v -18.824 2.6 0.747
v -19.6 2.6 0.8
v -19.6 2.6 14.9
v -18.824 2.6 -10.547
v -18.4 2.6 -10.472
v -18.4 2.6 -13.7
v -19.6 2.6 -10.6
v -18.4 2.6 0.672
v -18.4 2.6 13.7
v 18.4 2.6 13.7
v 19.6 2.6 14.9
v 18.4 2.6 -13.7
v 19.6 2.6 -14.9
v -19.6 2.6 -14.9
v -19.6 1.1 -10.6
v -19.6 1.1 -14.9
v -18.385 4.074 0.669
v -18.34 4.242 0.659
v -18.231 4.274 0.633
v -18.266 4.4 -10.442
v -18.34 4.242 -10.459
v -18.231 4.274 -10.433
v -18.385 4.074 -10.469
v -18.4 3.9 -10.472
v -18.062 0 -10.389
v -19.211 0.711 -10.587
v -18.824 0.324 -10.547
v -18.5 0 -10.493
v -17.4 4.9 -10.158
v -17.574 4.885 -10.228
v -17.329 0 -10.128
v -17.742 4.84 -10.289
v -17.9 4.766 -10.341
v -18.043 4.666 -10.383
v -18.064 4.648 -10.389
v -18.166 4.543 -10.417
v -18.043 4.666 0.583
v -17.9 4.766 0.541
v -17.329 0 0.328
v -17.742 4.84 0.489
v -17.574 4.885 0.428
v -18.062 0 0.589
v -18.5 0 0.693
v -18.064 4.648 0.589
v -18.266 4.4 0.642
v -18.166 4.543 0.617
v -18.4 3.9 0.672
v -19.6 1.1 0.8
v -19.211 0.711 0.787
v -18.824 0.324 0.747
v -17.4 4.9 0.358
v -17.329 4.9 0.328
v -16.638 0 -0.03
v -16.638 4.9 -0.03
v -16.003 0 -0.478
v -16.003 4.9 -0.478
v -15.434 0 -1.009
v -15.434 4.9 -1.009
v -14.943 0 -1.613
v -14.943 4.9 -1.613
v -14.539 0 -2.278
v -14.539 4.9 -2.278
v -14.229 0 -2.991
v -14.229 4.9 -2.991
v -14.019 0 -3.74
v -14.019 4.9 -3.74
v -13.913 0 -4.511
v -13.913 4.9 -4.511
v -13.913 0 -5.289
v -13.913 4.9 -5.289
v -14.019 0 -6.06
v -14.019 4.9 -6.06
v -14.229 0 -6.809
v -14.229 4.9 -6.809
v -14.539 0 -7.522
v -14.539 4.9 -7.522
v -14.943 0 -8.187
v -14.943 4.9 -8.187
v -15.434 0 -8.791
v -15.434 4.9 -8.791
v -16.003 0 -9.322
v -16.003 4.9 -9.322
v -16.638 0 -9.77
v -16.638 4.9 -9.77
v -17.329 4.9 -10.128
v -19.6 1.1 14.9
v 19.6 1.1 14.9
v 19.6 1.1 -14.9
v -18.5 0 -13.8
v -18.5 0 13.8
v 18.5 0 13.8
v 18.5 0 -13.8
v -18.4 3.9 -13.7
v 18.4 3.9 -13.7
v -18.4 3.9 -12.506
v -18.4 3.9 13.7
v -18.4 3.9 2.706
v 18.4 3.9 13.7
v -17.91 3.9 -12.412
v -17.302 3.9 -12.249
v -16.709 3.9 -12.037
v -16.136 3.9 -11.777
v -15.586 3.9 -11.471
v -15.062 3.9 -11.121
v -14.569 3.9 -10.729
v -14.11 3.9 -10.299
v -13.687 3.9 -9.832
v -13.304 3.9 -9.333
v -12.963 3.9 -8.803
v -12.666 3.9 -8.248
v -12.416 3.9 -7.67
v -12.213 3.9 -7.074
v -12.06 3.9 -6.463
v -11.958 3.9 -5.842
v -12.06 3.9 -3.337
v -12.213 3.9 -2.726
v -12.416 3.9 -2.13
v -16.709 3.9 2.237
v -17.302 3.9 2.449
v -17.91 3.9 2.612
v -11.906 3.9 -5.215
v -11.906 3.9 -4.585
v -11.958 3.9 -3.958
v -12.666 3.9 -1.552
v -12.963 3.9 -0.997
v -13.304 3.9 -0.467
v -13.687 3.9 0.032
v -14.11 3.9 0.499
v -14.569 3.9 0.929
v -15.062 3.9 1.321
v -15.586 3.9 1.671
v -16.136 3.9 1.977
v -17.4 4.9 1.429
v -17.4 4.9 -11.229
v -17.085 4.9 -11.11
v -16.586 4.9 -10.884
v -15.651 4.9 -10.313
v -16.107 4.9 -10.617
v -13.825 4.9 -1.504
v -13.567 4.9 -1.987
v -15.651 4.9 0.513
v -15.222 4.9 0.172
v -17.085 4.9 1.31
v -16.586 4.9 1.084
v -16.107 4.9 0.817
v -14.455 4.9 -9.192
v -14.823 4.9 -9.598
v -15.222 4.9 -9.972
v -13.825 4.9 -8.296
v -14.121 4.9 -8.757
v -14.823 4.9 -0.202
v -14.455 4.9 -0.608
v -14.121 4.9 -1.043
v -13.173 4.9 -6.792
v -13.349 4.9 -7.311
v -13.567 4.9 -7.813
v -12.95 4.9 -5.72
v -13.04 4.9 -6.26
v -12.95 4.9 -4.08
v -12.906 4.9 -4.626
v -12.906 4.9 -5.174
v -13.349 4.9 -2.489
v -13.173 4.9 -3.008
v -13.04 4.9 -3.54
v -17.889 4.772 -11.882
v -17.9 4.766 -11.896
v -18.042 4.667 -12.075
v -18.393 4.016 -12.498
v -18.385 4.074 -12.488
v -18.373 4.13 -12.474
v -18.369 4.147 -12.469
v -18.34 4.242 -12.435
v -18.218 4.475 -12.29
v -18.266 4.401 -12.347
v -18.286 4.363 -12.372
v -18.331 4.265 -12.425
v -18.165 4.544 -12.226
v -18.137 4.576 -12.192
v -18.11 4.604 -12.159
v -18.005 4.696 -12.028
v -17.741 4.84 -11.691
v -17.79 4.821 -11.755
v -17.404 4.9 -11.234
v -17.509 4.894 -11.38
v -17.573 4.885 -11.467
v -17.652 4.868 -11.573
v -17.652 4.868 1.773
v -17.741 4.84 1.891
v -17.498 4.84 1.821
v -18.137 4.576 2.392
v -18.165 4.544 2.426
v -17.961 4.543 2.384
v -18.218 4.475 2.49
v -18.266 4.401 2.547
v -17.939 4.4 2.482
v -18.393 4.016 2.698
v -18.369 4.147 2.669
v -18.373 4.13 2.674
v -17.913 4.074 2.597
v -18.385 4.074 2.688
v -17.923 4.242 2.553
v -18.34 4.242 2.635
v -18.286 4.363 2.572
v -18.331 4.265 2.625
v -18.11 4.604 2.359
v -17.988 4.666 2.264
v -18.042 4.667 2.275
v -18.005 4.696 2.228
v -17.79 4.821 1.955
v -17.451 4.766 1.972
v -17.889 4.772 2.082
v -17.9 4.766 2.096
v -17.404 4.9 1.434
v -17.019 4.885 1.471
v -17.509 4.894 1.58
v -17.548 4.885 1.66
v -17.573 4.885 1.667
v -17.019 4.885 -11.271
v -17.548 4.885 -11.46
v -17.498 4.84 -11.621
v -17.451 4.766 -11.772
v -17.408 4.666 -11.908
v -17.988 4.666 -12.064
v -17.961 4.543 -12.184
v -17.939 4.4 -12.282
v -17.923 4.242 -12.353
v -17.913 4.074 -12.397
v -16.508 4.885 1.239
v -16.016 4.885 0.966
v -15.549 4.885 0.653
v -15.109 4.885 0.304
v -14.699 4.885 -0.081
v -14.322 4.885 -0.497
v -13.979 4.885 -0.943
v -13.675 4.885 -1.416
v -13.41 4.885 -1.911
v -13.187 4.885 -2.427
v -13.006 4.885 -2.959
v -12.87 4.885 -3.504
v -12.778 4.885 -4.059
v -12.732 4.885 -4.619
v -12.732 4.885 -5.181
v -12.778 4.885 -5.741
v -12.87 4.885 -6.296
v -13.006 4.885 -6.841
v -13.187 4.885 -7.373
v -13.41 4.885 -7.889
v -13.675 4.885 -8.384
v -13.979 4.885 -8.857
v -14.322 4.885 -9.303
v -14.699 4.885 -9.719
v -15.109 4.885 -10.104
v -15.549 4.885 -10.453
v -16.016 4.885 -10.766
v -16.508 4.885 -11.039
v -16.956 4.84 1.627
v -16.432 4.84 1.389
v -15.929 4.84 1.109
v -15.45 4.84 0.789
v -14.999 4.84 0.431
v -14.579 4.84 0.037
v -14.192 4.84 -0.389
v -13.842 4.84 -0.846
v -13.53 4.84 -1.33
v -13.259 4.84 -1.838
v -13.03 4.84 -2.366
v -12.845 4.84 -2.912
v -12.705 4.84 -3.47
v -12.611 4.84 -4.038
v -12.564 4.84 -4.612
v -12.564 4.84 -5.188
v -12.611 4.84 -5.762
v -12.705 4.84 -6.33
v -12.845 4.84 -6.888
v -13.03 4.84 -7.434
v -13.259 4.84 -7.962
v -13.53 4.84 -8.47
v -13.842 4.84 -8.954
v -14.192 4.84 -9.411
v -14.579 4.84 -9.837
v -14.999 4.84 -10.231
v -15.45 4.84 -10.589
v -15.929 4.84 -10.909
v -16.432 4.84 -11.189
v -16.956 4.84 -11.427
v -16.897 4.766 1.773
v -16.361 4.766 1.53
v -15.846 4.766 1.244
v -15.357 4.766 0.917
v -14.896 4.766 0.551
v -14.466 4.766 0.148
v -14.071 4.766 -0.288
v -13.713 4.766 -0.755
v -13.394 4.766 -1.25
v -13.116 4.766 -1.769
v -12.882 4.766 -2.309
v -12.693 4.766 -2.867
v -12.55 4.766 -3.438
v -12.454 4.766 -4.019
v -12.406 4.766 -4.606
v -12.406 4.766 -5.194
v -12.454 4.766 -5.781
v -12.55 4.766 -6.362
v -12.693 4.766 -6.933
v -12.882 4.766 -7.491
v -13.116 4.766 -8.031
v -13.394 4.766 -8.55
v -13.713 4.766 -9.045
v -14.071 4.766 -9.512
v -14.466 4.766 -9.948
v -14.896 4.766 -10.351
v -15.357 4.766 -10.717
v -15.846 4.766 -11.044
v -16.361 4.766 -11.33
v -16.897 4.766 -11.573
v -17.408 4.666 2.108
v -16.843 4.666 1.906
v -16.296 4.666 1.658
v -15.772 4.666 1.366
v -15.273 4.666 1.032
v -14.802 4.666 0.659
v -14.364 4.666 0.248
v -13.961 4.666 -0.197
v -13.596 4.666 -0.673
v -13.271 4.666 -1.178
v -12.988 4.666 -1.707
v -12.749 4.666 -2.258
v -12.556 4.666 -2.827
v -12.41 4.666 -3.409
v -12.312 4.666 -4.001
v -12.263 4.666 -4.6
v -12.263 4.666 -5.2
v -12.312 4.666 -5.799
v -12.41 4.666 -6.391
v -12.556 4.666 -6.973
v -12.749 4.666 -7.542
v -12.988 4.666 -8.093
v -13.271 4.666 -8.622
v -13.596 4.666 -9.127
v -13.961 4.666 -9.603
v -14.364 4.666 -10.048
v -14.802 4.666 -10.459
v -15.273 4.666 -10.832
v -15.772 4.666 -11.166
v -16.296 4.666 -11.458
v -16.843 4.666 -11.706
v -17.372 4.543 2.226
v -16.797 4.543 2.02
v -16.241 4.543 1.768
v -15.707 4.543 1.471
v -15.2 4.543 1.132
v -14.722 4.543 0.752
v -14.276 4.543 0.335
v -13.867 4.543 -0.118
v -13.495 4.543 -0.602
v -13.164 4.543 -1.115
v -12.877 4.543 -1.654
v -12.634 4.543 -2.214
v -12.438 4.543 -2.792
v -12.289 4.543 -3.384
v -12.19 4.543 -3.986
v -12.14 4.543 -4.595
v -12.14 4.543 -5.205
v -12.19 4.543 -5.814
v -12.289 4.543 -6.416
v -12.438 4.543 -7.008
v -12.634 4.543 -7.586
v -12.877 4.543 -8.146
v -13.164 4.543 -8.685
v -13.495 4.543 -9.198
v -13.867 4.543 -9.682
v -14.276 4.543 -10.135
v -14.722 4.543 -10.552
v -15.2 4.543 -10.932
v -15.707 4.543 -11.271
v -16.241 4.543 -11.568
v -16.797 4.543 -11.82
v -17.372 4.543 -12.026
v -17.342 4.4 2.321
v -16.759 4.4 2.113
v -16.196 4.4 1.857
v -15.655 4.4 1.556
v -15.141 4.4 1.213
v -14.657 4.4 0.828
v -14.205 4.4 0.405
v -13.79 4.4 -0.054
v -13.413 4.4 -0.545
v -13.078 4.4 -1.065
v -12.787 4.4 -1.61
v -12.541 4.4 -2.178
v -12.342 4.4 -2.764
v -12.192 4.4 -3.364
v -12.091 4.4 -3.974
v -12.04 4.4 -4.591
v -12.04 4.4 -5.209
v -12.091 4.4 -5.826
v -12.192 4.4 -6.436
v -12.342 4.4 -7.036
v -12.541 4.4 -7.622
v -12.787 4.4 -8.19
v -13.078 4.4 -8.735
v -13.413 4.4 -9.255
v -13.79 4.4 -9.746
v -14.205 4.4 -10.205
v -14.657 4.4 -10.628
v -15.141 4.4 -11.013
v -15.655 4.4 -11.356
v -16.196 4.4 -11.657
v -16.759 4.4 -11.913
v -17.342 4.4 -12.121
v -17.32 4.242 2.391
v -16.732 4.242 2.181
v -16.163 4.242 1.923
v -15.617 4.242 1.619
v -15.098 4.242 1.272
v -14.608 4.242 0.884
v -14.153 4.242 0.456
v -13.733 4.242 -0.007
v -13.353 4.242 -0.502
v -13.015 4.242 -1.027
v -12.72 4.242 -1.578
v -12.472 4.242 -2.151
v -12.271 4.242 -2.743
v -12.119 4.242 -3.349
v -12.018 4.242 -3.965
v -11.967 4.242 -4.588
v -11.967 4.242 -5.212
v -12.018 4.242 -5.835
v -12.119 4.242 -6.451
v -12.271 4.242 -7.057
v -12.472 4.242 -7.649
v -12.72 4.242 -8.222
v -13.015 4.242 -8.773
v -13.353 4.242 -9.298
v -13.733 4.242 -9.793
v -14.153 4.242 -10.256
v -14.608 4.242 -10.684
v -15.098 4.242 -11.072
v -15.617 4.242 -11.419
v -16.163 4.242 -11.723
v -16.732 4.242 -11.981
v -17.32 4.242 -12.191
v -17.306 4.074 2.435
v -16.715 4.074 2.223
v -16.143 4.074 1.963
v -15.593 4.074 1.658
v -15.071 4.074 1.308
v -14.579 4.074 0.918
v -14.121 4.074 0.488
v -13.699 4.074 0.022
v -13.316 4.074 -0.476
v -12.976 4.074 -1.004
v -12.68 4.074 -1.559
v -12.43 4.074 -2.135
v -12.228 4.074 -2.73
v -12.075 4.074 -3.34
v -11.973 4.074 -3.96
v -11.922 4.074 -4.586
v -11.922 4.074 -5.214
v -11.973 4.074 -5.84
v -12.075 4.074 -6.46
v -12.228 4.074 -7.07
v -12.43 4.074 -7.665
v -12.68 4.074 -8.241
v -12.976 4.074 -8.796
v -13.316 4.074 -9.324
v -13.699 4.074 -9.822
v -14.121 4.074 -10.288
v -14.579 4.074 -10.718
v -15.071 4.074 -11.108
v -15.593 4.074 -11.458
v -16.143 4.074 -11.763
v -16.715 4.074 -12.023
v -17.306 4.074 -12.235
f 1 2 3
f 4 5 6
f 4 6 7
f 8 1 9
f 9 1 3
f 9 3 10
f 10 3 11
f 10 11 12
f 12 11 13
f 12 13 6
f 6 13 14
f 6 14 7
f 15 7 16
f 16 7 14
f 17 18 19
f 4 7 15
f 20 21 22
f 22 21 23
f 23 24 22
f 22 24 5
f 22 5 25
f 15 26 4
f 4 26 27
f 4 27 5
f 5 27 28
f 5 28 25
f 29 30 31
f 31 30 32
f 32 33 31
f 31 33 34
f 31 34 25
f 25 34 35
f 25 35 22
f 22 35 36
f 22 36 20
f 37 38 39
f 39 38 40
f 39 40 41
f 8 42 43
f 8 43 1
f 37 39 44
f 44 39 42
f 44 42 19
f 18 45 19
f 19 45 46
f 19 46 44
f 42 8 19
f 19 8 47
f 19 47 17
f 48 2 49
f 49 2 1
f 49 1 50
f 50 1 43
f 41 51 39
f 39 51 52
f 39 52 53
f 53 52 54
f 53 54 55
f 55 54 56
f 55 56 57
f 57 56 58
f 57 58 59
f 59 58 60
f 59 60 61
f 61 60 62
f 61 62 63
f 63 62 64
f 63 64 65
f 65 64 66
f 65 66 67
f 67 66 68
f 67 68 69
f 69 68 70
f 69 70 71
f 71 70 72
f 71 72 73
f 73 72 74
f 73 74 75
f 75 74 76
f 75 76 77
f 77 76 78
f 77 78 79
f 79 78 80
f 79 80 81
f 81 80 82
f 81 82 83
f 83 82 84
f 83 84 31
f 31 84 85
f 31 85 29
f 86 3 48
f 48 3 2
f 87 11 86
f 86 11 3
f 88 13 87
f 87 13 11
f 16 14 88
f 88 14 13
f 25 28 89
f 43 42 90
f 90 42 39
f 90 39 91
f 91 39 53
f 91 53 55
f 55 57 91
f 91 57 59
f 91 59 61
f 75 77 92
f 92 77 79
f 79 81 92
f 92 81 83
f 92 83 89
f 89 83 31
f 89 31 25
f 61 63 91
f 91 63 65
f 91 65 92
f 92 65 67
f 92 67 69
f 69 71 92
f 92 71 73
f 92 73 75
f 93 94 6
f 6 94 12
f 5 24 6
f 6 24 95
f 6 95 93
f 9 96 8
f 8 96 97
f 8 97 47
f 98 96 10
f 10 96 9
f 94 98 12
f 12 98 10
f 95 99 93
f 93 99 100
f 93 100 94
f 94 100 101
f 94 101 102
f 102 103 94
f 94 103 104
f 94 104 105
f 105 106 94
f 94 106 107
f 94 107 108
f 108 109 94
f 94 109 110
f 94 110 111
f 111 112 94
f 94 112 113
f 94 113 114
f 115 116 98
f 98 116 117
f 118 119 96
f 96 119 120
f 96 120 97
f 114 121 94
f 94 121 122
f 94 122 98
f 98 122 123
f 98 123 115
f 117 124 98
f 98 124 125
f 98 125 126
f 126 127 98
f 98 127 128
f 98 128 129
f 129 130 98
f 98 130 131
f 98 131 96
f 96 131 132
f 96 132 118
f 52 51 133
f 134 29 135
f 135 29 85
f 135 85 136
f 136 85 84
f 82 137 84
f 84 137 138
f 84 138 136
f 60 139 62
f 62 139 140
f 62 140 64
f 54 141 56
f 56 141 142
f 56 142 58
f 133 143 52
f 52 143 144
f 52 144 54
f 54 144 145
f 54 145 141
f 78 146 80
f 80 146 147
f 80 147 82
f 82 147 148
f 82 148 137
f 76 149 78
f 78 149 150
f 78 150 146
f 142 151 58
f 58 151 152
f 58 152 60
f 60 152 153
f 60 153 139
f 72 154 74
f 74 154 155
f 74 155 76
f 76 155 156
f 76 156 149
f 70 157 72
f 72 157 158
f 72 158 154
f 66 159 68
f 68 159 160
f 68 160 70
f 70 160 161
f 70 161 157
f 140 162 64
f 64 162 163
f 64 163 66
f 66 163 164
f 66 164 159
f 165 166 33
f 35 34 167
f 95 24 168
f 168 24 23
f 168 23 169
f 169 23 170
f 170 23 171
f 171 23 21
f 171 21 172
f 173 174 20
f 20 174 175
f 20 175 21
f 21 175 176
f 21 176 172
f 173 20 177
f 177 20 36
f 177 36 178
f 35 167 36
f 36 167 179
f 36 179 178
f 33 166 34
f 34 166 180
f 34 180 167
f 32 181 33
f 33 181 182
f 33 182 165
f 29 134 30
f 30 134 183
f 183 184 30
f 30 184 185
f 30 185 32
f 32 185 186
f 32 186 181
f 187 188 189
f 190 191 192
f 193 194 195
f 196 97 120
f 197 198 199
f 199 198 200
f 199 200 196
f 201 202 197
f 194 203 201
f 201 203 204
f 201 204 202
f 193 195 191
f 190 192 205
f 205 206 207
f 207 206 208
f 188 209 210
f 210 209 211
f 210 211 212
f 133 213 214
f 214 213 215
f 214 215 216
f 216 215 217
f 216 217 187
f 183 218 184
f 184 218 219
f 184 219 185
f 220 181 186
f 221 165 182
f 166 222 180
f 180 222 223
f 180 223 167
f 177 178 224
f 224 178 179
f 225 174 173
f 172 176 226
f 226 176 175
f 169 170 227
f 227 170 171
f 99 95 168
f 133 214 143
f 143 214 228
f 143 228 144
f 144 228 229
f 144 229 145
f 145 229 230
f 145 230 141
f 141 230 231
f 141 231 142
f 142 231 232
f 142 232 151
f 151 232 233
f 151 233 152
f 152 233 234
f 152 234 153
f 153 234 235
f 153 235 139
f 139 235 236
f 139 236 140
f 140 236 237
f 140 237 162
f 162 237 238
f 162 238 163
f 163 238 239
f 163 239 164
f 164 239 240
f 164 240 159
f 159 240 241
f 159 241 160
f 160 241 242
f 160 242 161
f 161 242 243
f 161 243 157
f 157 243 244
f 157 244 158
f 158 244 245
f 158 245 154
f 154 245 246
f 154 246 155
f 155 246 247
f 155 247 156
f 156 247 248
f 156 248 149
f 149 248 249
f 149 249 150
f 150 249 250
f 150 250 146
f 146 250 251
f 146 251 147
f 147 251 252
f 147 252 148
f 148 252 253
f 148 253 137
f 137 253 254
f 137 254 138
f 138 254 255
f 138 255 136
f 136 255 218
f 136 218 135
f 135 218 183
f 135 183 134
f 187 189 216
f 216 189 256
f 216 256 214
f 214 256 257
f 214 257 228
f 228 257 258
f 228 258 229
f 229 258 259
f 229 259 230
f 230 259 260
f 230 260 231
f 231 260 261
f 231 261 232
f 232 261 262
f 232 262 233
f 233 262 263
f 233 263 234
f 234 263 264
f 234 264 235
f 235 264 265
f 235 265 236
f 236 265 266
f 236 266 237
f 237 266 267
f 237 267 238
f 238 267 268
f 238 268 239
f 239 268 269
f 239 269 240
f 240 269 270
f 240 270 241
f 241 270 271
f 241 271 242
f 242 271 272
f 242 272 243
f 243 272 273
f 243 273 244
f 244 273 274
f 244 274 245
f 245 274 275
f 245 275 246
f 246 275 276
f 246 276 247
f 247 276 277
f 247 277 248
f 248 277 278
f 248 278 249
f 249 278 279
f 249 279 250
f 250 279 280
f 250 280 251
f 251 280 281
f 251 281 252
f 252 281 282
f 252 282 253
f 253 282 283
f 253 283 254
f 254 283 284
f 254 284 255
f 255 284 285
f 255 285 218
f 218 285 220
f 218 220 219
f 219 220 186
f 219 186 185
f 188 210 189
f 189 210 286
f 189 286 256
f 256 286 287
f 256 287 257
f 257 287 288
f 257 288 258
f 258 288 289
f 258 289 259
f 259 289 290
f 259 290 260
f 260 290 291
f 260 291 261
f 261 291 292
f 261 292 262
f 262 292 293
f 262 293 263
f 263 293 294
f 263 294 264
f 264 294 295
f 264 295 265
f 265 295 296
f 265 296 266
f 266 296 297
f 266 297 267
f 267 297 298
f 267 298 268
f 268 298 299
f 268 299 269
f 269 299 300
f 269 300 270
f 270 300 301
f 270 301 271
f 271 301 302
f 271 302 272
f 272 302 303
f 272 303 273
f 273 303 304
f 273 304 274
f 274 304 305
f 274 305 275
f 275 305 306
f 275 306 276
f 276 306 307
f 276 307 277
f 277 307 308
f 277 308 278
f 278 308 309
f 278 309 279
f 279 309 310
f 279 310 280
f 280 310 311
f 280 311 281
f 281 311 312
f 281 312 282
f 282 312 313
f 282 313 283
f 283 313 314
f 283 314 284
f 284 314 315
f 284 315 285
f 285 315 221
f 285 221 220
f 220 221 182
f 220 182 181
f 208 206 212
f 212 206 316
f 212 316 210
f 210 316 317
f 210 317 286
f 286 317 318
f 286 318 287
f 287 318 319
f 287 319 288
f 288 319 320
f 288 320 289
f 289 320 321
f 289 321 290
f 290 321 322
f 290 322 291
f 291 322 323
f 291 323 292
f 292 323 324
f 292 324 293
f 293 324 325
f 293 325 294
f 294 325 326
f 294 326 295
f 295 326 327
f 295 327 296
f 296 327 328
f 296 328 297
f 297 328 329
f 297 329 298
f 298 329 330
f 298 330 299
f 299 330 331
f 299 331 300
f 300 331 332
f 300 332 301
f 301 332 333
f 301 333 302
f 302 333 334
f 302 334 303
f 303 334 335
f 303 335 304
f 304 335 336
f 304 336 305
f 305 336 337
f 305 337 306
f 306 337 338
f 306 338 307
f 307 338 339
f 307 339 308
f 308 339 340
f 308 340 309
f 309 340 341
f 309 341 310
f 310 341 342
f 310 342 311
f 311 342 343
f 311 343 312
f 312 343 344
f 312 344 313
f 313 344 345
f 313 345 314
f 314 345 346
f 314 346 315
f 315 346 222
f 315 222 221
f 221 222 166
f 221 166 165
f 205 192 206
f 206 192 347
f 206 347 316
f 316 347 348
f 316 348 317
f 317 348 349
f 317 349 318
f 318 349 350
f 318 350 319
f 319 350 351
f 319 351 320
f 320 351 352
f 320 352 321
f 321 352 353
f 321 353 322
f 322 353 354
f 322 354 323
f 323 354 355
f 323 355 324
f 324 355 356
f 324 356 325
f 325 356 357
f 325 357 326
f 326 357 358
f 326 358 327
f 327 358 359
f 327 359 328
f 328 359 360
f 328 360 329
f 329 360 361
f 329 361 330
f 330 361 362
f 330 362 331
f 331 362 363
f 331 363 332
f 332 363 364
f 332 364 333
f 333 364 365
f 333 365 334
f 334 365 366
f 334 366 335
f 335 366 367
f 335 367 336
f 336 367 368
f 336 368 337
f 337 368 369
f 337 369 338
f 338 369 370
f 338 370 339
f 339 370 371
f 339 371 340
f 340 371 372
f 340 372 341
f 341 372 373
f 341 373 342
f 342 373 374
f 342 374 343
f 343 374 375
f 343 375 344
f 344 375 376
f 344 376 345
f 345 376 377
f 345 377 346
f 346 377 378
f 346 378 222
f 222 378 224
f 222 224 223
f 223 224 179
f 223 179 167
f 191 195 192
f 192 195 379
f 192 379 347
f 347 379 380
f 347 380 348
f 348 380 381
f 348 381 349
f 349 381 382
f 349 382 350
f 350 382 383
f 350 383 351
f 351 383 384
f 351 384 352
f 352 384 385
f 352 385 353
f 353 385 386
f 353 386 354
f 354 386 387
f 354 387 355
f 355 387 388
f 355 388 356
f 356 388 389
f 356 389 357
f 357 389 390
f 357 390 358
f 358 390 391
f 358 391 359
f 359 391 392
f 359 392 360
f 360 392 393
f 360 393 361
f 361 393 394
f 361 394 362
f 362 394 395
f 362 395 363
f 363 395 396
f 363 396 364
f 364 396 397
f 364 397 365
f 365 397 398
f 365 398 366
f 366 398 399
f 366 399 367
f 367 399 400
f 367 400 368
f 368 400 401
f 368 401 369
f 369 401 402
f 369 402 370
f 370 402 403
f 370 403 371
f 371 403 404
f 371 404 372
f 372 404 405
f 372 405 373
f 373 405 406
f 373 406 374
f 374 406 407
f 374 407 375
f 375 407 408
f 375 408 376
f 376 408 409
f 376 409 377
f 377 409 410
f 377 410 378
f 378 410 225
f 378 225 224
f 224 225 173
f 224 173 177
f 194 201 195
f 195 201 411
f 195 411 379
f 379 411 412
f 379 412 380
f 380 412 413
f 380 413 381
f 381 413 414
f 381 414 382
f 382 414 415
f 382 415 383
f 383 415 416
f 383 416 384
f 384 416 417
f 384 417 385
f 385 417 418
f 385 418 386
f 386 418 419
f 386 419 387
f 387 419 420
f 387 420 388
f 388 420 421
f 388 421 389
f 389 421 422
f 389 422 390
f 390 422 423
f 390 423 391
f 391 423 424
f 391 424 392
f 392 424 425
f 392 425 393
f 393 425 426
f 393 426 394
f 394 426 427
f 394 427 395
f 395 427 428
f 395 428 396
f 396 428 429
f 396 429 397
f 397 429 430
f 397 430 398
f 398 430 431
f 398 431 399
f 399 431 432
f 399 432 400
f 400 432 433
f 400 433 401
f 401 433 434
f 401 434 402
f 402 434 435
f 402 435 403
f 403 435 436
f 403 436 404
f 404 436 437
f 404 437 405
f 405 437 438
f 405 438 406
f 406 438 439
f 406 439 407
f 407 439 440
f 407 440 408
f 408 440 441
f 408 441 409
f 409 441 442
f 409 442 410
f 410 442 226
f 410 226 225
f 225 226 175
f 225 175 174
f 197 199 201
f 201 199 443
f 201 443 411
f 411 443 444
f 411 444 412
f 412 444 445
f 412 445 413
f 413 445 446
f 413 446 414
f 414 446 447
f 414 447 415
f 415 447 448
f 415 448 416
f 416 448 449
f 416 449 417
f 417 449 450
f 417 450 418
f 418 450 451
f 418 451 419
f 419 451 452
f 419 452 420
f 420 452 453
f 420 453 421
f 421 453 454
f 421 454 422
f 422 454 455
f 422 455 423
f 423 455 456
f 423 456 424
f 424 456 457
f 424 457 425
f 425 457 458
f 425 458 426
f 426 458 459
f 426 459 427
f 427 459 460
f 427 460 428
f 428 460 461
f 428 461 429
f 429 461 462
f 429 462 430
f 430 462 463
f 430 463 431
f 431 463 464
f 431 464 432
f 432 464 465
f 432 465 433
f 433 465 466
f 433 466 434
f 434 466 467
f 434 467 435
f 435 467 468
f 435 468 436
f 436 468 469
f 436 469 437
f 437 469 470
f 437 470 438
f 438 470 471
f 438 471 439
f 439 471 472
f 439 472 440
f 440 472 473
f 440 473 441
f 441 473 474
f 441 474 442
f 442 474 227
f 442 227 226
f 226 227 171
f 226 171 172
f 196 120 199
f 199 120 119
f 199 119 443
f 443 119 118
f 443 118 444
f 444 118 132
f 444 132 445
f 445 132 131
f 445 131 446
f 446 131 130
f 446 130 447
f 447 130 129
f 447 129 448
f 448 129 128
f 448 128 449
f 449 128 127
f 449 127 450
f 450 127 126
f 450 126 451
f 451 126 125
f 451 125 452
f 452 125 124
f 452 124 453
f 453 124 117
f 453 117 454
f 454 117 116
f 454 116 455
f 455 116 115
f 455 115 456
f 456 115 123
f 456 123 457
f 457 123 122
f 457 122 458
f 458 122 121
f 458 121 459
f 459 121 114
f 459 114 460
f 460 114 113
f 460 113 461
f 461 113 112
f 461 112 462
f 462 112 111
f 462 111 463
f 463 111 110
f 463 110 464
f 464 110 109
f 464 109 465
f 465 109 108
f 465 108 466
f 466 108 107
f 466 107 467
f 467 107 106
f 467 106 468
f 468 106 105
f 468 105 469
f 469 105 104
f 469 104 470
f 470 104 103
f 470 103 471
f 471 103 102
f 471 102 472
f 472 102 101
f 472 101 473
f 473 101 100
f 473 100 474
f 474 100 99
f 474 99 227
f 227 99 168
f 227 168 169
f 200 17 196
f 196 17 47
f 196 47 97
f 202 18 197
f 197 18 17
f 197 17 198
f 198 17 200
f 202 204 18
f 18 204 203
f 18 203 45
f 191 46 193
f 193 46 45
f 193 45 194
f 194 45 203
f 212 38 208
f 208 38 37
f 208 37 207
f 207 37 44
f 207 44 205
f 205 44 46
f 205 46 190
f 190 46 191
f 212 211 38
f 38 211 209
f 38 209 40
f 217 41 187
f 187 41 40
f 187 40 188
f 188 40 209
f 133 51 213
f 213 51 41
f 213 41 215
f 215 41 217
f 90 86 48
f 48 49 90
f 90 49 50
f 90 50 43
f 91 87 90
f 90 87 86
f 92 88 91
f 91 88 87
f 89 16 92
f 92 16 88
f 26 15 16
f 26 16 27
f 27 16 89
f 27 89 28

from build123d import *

# Parameters (mm, degrees)
BOSS_EXTRUDE1_DEPTH = 1
BOSS_EXTRUDE2_START = 1
BOSS_EXTRUDE2_DEPTH = 1.6
BOSS_EXTRUDE3_START = 2.6
BOSS_EXTRUDE3_DEPTH = 1.3
BOSS_EXTRUDE4_START = 3.9
BOSS_EXTRUDE4_DEPTH = 1
FILLET1_R           = 1
CHAMFER1_SIZE       = 1.1


with BuildPart() as part:
    # Sketch1 → Boss-Extrude1 (new body)
    with BuildSketch(Plane(origin=(0, 0, 0), x_dir=(1, 0, 0), z_dir=(0, 1, 0))):
        with BuildLine():
            Line((-18.4, 13.7), (-18.4, 12.505918748))
            ThreePointArc((-18.4, 12.505918748), (-11.9, 4.9), (-18.4, -2.705918748))
            Line((-18.4, -2.705918748), (-18.4, -13.7))
            Line((-18.4, -13.7), (18.4, -13.7))
            Line((18.4, -13.7), (18.4, 13.7))
            Line((18.4, 13.7), (-18.4, 13.7))
        make_face()
        with BuildLine():
            ThreePointArc((-18.4, -2.705918748), (-11.9, 4.9), (-18.4, 12.505918748))
            Line((-18.4, 12.505918748), (-18.4, 10.472252686))
            ThreePointArc((-18.4, 10.472252686), (-13.9, 4.9), (-18.4, -0.672252686))
            Line((-18.4, -0.672252686), (-18.4, -2.705918748))
        make_face()
        with BuildLine():
            Line((19.6, 14.9), (-19.6, 14.9))
            Line((-19.6, 14.9), (-19.6, 12.6))
            ThreePointArc((-19.6, 12.6), (-18.998158808, 12.576443654), (-18.4, 12.505918748))
            Line((-18.4, 12.505918748), (-18.4, 13.7))
            Line((-18.4, 13.7), (18.4, 13.7))
            Line((18.4, 13.7), (18.4, -13.7))
            Line((18.4, -13.7), (-18.4, -13.7))
            Line((-18.4, -13.7), (-18.4, -2.705918748))
            ThreePointArc((-18.4, -2.705918748), (-18.998158808, -2.776443654), (-19.6, -2.8))
            Line((-19.6, -2.8), (-19.6, -14.9))
            Line((-19.6, -14.9), (19.6, -14.9))
            Line((19.6, -14.9), (19.6, 14.9))
        make_face()
        with BuildLine():
            ThreePointArc((-18.4, 12.505918748), (-18.998158808, 12.576443654), (-19.6, 12.6))
            Line((-19.6, 12.6), (-19.6, 10.6))
            ThreePointArc((-19.6, 10.6), (-18.996609708, 10.567973196), (-18.4, 10.472252686))
            Line((-18.4, 10.472252686), (-18.4, 12.505918748))
        make_face()
        with BuildLine():
            ThreePointArc((-18.4, -0.672252686), (-18.996609708, -0.767973196), (-19.6, -0.8))
            Line((-19.6, -0.8), (-19.6, -2.8))
            ThreePointArc((-19.6, -2.8), (-18.998158808, -2.776443654), (-18.4, -2.705918748))
            Line((-18.4, -2.705918748), (-18.4, -0.672252686))
        make_face()
    extrude(amount=BOSS_EXTRUDE1_DEPTH)

    # Sketch1<5> → Boss-Extrude2 (add)
    with BuildSketch(Plane(origin=(0, 0, 0), x_dir=(1, 0, 0), z_dir=(0, 1, 0)).offset(BOSS_EXTRUDE2_START)):
        with BuildLine():
            Line((-18.4, 13.7), (-18.4, 12.505918748))
            ThreePointArc((-18.4, 12.505918748), (-11.9, 4.9), (-18.4, -2.705918748))
            Line((-18.4, -2.705918748), (-18.4, -13.7))
            Line((-18.4, -13.7), (18.4, -13.7))
            Line((18.4, -13.7), (18.4, 13.7))
            Line((18.4, 13.7), (-18.4, 13.7))
        make_face()
        with BuildLine():
            ThreePointArc((-18.4, -2.705918748), (-11.9, 4.9), (-18.4, 12.505918748))
            Line((-18.4, 12.505918748), (-18.4, 10.472252686))
            ThreePointArc((-18.4, 10.472252686), (-13.9, 4.9), (-18.4, -0.672252686))
            Line((-18.4, -0.672252686), (-18.4, -2.705918748))
        make_face()
        with BuildLine():
            ThreePointArc((-18.4, 12.505918748), (-18.998158808, 12.576443654), (-19.6, 12.6))
            Line((-19.6, 12.6), (-19.6, 10.6))
            ThreePointArc((-19.6, 10.6), (-18.996609708, 10.567973196), (-18.4, 10.472252686))
            Line((-18.4, 10.472252686), (-18.4, 12.505918748))
        make_face()
        with BuildLine():
            ThreePointArc((-18.4, -0.672252686), (-18.996609708, -0.767973196), (-19.6, -0.8))
            Line((-19.6, -0.8), (-19.6, -2.8))
            ThreePointArc((-19.6, -2.8), (-18.998158808, -2.776443654), (-18.4, -2.705918748))
            Line((-18.4, -2.705918748), (-18.4, -0.672252686))
        make_face()
        with BuildLine():
            Line((19.6, 14.9), (-19.6, 14.9))
            Line((-19.6, 14.9), (-19.6, 12.6))
            ThreePointArc((-19.6, 12.6), (-18.998158808, 12.576443654), (-18.4, 12.505918748))
            Line((-18.4, 12.505918748), (-18.4, 13.7))
            Line((-18.4, 13.7), (18.4, 13.7))
            Line((18.4, 13.7), (18.4, -13.7))
            Line((18.4, -13.7), (-18.4, -13.7))
            Line((-18.4, -13.7), (-18.4, -2.705918748))
            ThreePointArc((-18.4, -2.705918748), (-18.998158808, -2.776443654), (-19.6, -2.8))
            Line((-19.6, -2.8), (-19.6, -14.9))
            Line((-19.6, -14.9), (19.6, -14.9))
            Line((19.6, -14.9), (19.6, 14.9))
        make_face()
    extrude(amount=BOSS_EXTRUDE2_DEPTH)

    # Sketch1<6> → Boss-Extrude3 (add)
    with BuildSketch(Plane(origin=(0, 0, 0), x_dir=(1, 0, 0), z_dir=(0, 1, 0)).offset(BOSS_EXTRUDE3_START)):
        with BuildLine():
            Line((-18.4, 13.7), (-18.4, 12.505918748))
            ThreePointArc((-18.4, 12.505918748), (-11.9, 4.9), (-18.4, -2.705918748))
            Line((-18.4, -2.705918748), (-18.4, -13.7))
            Line((-18.4, -13.7), (18.4, -13.7))
            Line((18.4, -13.7), (18.4, 13.7))
            Line((18.4, 13.7), (-18.4, 13.7))
        make_face()
        with BuildLine():
            ThreePointArc((-18.4, -2.705918748), (-11.9, 4.9), (-18.4, 12.505918748))
            Line((-18.4, 12.505918748), (-18.4, 10.472252686))
            ThreePointArc((-18.4, 10.472252686), (-13.9, 4.9), (-18.4, -0.672252686))
            Line((-18.4, -0.672252686), (-18.4, -2.705918748))
        make_face()
    extrude(amount=BOSS_EXTRUDE3_DEPTH)

    # Sketch1<8> → Boss-Extrude4 (add)
    with BuildSketch(Plane(origin=(0, 0, 0), x_dir=(1, 0, 0), z_dir=(0, 1, 0)).offset(BOSS_EXTRUDE4_START)):
        with BuildLine():
            ThreePointArc((-18.4, -2.705918748), (-11.9, 4.9), (-18.4, 12.505918748))
            Line((-18.4, 12.505918748), (-18.4, 10.472252686))
            ThreePointArc((-18.4, 10.472252686), (-13.9, 4.9), (-18.4, -0.672252686))
            Line((-18.4, -0.672252686), (-18.4, -2.705918748))
        make_face()
    extrude(amount=BOSS_EXTRUDE4_DEPTH)

    # Fillet1
    fillet1_edges = [part.edges().sort_by_distance(p)[0] for p in [
        (-11.9, 4.9, -4.9),
        (-18.4, 4.9, 1.689085717),
        (-18.4, 4.9, -11.489085717),
    ]]
    fillet(fillet1_edges, radius=FILLET1_R - 0.0001)  # a hair under: the kernel refuses the full size

    # Chamfer1
    chamfer1_edges = [part.edges().sort_by_distance(p)[0] for p in [
        (0, 0, 14.9),
        (-19.6, 0, 7.85),
        (-19.6, 0, -12.75),
        (0, 0, -14.9),
        (19.6, 0, 0),
    ]]
    chamfer(chamfer1_edges, length=CHAMFER1_SIZE)


solid = part.part
